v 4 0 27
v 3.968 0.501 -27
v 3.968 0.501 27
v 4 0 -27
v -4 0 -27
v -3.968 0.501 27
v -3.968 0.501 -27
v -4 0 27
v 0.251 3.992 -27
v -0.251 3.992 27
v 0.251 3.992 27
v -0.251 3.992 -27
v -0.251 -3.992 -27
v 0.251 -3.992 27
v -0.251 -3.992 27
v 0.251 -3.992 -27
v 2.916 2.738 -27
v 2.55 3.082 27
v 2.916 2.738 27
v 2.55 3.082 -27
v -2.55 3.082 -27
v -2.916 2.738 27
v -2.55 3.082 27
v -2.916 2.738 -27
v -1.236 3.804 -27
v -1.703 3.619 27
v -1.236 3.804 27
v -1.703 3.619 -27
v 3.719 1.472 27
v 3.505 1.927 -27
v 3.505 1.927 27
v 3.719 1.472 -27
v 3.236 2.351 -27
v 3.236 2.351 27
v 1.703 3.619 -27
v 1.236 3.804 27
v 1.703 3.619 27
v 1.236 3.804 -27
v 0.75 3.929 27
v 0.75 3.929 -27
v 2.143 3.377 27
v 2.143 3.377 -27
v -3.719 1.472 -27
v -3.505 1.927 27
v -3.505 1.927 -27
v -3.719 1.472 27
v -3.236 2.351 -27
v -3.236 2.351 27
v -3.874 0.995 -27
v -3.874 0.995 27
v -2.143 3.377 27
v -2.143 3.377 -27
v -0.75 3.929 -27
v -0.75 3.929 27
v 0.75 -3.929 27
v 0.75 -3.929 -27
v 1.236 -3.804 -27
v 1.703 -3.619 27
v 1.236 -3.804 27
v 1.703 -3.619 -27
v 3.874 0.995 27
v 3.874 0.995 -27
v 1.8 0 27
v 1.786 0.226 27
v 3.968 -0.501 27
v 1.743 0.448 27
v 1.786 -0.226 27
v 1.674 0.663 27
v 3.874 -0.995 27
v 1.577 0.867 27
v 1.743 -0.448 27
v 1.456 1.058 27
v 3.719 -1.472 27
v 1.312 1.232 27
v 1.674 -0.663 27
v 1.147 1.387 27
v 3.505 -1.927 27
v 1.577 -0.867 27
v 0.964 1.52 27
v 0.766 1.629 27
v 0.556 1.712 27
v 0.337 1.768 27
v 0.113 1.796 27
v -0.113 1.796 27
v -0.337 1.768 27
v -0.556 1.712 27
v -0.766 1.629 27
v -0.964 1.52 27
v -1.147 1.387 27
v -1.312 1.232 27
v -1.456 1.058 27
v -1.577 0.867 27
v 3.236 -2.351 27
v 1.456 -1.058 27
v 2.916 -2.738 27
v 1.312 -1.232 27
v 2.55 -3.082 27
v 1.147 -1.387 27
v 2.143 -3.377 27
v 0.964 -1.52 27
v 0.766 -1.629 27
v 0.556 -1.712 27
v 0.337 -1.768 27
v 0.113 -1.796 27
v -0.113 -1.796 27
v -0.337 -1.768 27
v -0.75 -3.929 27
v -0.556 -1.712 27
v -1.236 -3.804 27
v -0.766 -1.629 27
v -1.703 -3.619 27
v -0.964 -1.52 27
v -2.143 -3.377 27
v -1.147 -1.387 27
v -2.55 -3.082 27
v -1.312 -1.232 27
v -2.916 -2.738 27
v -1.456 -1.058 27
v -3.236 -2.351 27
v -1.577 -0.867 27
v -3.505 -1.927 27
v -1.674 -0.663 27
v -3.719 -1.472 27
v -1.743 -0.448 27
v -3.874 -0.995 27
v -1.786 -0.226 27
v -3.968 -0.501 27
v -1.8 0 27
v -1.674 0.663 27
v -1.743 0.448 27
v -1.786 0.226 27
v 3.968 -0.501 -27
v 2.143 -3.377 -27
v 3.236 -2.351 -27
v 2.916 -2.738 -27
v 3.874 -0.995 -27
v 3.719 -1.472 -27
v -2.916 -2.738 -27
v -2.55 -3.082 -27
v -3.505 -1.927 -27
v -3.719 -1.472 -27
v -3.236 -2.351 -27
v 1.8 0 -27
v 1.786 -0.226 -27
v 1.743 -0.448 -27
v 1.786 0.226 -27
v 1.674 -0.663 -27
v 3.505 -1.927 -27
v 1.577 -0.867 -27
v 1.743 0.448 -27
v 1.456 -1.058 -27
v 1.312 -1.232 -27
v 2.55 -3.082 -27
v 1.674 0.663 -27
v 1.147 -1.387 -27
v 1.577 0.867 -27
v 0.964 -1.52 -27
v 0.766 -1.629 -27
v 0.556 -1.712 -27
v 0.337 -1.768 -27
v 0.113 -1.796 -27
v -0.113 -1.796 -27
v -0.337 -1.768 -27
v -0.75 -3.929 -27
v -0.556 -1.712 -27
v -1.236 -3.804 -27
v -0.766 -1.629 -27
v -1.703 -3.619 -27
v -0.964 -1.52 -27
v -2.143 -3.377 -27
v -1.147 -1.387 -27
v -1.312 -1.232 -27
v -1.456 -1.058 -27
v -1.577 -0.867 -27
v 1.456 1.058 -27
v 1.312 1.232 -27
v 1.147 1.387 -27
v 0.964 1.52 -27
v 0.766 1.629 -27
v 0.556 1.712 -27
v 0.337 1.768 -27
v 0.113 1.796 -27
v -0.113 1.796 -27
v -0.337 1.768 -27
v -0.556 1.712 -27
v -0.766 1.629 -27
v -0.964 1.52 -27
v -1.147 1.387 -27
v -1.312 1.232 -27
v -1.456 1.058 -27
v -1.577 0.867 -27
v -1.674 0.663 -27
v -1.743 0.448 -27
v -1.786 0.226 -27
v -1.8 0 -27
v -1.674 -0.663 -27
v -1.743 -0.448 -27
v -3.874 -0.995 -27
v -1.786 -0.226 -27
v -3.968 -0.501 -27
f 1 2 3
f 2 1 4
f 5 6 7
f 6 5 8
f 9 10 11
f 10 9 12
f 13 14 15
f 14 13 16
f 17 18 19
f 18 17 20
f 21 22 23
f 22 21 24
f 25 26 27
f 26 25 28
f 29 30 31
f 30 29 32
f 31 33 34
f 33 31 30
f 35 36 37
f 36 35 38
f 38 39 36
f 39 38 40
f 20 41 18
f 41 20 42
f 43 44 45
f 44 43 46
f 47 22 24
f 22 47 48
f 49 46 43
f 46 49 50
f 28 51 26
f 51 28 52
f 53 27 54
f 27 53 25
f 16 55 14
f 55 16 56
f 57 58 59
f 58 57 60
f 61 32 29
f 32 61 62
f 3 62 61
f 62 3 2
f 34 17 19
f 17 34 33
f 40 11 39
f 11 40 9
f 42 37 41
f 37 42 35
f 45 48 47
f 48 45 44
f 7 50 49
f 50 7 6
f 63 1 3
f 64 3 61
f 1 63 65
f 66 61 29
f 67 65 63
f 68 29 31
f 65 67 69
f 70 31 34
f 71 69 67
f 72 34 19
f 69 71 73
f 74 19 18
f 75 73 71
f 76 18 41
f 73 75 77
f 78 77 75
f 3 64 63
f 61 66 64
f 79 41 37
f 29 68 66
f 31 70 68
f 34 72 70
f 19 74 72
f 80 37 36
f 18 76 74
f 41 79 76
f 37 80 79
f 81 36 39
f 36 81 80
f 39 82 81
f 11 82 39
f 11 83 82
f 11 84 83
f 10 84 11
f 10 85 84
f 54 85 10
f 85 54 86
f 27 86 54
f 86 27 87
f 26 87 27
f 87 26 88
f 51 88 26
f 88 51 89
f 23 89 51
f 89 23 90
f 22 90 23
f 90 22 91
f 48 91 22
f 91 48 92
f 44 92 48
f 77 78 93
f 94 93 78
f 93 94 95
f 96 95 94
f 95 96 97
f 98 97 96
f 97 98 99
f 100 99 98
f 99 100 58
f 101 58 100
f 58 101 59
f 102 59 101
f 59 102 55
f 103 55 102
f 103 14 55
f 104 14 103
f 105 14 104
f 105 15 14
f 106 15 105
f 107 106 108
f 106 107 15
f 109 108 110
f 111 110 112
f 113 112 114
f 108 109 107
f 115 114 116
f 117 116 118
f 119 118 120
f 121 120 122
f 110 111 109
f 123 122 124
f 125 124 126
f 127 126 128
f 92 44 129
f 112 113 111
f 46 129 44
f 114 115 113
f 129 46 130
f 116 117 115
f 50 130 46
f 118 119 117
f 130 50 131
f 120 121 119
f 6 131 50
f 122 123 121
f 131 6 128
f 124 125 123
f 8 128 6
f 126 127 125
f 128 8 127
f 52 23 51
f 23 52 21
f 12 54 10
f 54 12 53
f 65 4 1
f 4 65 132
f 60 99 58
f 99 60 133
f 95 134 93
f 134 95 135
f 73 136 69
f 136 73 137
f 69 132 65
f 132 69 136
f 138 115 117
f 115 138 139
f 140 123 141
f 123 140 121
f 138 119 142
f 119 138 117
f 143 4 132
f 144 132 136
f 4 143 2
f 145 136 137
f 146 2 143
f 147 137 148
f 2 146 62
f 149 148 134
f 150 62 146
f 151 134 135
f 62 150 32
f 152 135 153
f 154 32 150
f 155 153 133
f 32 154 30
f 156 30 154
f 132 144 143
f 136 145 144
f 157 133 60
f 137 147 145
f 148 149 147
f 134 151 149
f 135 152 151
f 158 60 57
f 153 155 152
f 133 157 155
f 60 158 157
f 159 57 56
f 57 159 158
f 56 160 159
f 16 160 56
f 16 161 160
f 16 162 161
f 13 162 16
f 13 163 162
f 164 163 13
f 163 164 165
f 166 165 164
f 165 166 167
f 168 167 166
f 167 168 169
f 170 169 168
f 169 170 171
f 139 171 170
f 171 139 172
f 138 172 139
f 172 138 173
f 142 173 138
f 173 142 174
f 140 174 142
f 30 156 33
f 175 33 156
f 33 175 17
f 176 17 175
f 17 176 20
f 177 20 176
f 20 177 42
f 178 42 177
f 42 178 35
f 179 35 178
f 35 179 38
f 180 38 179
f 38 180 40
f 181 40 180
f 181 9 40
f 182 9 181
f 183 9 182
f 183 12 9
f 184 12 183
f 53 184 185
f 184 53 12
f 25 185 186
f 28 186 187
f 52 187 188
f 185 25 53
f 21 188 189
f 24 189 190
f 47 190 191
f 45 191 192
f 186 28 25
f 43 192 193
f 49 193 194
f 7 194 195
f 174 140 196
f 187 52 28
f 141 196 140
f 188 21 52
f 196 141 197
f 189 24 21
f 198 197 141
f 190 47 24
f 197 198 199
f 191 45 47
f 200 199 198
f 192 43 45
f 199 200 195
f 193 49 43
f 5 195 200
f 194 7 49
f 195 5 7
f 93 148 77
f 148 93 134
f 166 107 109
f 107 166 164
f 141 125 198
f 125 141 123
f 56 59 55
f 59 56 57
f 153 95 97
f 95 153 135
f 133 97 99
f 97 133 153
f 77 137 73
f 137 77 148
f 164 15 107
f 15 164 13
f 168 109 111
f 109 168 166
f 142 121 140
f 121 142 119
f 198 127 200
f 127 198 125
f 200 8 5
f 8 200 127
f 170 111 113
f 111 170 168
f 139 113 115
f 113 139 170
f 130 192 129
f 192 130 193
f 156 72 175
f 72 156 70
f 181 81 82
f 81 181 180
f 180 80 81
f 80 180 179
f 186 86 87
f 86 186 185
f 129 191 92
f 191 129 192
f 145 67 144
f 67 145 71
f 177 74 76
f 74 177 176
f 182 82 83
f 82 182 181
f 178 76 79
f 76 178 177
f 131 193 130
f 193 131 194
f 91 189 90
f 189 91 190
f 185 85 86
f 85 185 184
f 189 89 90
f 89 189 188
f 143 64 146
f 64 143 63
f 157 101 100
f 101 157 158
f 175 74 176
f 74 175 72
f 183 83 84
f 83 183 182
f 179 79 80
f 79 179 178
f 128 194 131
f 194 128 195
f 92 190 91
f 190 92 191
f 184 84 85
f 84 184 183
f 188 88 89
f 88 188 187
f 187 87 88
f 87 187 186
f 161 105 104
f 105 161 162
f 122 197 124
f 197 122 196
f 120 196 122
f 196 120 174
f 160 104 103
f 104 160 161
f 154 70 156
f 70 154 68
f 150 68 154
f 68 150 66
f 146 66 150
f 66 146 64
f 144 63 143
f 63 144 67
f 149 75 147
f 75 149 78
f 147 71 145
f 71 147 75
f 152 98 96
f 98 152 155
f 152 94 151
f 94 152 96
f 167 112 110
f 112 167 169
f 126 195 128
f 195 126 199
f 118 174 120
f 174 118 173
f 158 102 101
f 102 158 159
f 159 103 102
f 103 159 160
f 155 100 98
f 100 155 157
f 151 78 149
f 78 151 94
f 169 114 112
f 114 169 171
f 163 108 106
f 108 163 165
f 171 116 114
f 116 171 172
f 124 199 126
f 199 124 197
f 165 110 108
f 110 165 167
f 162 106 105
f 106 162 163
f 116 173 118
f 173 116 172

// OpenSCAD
$fn = 50;


difference() {
	union() {
		translate(v = [0, 0, -27.0000000000]) {
			cylinder(h = 54, r = 4.0000000000);
		}
	}
	union() {
		translate(v = [0, 0, -100.0000000000]) {
			cylinder(h = 200, r = 1.8000000000);
		}
	}
}
